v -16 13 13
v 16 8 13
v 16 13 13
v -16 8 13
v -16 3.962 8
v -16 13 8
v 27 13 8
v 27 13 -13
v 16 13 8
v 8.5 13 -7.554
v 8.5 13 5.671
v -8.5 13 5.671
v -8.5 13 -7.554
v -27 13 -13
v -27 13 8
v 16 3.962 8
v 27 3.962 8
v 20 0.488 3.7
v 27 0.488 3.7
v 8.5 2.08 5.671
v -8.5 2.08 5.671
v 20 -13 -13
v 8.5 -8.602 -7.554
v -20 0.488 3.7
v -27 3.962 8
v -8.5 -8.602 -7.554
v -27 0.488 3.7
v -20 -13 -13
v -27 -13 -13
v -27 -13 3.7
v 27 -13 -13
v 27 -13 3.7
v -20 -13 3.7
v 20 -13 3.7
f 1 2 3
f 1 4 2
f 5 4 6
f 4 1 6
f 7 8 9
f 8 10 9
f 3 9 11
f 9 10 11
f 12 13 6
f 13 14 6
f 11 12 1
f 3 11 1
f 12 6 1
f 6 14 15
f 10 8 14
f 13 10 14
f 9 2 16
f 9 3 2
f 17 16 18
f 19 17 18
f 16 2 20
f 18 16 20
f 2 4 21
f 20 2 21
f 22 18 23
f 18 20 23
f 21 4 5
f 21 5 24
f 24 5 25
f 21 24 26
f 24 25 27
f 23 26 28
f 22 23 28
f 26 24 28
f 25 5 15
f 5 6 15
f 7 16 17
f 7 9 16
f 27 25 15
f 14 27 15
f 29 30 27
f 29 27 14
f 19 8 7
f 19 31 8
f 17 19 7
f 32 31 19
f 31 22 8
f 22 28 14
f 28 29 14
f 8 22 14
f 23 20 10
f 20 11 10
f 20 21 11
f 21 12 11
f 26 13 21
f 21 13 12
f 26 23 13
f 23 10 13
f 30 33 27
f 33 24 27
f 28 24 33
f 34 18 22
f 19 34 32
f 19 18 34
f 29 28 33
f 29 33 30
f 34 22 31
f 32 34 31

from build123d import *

# Parameters (mm, degrees)
PAD_DEPTH       = 27
SKETCH001_W     = 7
SKETCH001_H     = 26
PAD001_DEPTH    = 16.7
SKETCH002_W     = 11
SKETCH002_H     = 5
POCKET_DEPTH    = 26.001
SKETCH005_W     = 17
SKETCH005_H     = 13.225
POCKET001_DEPTH = 26.001


with BuildPart() as part:
    # Sketch → Pad (new body, symmetric)
    with BuildSketch(Plane.YZ):
        Polygon((8, 13), (-13, -13), (13, -13), (13, 13), align=None)
    extrude(amount=PAD_DEPTH, both=True)

    # Sketch001 (on DatumPlane) → Pad001 (join)
    with BuildSketch(Plane.XY.offset(-13)):
        with Locations((-23.5, 0)):
            Rectangle(SKETCH001_W, SKETCH001_H)
        with Locations((23.5, 0)):
            Rectangle(SKETCH001_W, SKETCH001_H)
    extrude(amount=PAD001_DEPTH)

    # Sketch002 (on DatumPlane) → Pocket (cut, through all)
    with BuildSketch(Plane.XZ.offset(-13)):
        with Locations((-21.5, 10.5)):
            Rectangle(SKETCH002_W, SKETCH002_H)
        with Locations((21.5, 10.5)):
            Rectangle(SKETCH002_W, SKETCH002_H)
    extrude(amount=POCKET_DEPTH, mode=Mode.SUBTRACT)

    # Sketch005 (on DatumPlane) → Pocket001 (cut, through all)
    with BuildSketch(Plane.XZ.offset(-13)):
        with Locations((0, -0.941912)):
            Rectangle(SKETCH005_W, SKETCH005_H)
    extrude(amount=POCKET001_DEPTH, mode=Mode.SUBTRACT)


solid = part.part
